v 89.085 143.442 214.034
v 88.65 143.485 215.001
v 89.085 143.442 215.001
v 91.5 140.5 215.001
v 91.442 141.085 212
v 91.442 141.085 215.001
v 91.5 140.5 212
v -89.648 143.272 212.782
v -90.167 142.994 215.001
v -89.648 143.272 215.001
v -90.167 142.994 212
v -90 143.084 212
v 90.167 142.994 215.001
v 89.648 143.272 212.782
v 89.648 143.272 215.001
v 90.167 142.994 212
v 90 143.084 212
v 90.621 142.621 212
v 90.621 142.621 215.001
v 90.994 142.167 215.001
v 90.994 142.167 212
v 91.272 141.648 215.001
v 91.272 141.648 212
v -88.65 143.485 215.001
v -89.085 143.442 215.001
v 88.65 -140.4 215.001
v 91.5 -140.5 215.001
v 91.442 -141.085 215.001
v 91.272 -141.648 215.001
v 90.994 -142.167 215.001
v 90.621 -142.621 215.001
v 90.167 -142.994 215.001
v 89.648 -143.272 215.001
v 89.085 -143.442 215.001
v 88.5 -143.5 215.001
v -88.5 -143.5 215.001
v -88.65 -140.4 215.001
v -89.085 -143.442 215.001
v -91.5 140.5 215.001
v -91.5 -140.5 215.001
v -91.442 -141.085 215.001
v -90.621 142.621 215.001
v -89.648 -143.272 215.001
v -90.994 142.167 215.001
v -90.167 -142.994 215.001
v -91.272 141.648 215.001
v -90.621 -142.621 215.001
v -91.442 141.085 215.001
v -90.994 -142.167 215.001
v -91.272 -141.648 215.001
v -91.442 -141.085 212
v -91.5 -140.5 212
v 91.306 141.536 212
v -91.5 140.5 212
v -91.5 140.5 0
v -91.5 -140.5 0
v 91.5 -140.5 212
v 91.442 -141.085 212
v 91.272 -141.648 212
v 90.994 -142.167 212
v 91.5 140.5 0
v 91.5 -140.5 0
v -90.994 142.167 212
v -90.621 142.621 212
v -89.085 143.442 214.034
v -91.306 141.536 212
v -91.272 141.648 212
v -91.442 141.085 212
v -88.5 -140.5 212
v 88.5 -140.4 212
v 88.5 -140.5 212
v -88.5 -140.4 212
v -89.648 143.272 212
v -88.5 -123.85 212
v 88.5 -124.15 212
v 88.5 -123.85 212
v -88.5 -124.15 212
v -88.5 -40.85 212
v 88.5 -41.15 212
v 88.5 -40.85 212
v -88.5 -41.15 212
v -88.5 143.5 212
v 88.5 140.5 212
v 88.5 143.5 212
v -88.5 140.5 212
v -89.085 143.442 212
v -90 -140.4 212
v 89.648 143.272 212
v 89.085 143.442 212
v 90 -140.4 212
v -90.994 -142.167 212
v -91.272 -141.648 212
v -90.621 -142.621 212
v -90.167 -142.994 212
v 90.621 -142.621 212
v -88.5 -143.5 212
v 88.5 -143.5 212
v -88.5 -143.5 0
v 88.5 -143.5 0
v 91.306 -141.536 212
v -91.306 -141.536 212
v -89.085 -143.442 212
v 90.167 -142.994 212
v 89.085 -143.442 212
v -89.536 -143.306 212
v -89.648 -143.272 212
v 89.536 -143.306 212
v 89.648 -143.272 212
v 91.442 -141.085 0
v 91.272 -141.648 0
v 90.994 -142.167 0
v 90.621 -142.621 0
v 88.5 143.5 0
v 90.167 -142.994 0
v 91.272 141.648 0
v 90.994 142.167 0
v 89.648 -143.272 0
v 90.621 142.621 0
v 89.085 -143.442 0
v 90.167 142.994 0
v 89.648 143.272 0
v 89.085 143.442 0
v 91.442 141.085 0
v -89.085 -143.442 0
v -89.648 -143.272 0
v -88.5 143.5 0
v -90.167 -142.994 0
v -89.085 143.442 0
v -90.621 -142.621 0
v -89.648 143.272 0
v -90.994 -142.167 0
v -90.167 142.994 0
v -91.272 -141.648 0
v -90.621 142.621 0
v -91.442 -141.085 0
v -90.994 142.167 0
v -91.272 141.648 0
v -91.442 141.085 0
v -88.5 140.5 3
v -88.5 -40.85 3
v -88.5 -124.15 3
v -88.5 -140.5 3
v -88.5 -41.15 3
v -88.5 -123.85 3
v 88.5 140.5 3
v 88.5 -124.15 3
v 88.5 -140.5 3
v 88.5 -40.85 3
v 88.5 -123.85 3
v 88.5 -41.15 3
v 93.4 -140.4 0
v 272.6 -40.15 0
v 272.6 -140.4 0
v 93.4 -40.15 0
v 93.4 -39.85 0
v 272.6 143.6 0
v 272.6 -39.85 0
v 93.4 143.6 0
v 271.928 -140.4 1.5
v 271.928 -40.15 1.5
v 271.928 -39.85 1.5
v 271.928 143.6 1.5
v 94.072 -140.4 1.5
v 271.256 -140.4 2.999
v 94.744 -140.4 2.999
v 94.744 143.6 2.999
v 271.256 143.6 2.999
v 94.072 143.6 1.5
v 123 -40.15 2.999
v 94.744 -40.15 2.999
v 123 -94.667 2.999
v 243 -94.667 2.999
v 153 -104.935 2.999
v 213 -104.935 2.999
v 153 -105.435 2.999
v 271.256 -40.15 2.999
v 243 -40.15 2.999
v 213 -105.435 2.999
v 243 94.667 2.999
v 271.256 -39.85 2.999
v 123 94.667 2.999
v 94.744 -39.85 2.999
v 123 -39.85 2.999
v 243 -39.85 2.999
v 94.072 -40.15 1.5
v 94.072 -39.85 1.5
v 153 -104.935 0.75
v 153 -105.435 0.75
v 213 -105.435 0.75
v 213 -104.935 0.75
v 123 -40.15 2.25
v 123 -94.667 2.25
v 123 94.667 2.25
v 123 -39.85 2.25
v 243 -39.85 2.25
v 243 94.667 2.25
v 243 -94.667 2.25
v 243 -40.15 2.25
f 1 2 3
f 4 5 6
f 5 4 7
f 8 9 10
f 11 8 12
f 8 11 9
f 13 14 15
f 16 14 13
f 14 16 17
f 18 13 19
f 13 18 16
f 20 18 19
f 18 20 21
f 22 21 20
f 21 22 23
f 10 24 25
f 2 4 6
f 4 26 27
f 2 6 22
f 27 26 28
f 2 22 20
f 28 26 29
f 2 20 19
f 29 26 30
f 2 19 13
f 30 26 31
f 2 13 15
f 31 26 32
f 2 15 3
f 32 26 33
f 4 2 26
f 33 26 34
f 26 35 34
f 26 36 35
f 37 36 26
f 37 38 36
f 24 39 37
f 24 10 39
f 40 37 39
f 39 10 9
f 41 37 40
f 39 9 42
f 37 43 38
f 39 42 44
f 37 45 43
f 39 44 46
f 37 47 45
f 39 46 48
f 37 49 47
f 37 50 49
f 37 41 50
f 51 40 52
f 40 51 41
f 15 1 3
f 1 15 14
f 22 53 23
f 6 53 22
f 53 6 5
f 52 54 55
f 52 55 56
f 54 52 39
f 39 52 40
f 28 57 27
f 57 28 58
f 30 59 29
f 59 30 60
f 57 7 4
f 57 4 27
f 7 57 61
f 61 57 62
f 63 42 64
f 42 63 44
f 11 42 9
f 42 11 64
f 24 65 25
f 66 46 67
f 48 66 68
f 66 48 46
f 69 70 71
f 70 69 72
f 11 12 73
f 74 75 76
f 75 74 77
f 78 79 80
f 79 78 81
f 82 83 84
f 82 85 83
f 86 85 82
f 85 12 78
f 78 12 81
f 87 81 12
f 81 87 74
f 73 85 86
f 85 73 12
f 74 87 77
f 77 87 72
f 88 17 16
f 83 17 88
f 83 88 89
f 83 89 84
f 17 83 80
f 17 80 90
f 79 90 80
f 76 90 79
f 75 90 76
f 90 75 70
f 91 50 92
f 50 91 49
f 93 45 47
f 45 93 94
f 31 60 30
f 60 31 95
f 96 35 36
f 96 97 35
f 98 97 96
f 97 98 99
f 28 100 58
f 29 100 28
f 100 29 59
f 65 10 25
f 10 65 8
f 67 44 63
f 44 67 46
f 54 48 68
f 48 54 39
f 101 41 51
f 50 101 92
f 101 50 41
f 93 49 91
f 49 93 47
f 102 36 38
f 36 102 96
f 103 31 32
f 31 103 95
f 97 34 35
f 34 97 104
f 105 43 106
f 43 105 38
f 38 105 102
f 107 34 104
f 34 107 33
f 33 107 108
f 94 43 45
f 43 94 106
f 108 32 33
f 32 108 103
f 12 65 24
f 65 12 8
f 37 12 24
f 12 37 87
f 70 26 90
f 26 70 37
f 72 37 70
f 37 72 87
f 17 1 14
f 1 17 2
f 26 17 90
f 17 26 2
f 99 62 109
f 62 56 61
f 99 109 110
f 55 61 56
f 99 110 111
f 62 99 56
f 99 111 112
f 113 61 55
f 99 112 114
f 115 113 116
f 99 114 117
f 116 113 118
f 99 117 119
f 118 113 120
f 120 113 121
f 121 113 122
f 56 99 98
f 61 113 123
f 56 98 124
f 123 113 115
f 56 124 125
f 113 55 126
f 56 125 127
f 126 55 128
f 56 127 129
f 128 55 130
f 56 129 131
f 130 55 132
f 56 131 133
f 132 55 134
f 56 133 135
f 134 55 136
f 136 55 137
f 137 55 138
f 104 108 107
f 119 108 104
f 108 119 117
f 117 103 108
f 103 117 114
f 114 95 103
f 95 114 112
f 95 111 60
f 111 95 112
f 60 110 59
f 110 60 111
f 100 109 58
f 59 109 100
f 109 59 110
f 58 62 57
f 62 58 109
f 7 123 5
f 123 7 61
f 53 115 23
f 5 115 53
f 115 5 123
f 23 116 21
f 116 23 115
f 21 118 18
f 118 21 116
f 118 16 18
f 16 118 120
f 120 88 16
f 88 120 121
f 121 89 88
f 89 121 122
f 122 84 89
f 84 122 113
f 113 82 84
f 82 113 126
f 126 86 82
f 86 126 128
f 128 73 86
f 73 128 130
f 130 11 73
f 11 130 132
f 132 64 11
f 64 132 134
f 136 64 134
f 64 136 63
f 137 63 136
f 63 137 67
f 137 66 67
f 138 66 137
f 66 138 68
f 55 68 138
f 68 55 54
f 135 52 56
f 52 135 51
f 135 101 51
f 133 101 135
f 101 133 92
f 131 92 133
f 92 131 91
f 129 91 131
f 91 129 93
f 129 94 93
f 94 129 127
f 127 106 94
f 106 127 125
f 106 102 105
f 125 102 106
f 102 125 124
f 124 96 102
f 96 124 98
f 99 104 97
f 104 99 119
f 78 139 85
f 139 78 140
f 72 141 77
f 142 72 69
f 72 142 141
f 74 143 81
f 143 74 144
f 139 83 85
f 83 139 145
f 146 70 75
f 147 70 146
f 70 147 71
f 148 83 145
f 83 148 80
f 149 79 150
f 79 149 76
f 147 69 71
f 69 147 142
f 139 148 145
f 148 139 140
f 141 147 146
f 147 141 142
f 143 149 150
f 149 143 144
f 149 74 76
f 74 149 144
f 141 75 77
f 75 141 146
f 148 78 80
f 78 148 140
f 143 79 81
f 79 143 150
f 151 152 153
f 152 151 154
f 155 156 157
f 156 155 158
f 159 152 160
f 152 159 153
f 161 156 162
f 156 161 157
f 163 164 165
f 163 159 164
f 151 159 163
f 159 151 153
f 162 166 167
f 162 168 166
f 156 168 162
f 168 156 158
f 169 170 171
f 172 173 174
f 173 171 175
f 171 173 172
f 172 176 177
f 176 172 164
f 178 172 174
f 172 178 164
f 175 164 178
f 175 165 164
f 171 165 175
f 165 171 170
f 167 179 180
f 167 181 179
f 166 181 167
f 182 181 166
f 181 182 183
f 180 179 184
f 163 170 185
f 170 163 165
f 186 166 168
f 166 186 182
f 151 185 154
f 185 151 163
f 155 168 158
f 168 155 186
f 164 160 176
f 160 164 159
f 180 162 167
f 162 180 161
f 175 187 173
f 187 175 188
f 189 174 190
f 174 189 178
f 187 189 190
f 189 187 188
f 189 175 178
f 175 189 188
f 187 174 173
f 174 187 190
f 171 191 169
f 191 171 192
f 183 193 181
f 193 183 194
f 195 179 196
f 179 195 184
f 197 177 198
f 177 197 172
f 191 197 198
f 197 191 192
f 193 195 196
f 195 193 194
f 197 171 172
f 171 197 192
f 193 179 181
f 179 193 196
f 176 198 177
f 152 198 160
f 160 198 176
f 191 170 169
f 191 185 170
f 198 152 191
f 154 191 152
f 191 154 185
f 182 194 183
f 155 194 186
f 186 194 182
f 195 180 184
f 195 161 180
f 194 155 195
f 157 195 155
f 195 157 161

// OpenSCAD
// Box builder with angled sliding lid.
// Has potential recess for label and fingernail grip to open.


// preview[view:north west, tilt:top diagonal]

// Width of Box
Box_x = 180;
// Length of Box
Box_y = 284;
// Height of Box
Box_z = 215; 
Wall_thickness = 3;  //[2:0.5:10]
Floor_thickness = 3;
Lid_thickness = 3;   //[2:0.5:10]
// Cut in half if the thing is too big for the printer
CutInHalfX = 0.3; // Input a value for the distance of the pieces cut on the X-Axis
CutInHalfY = 0; // Input a value for the distance of the pieces cut on the Y-Axis
// Add inset for a Label
Lid_inset = "yes"; // [yes,no]
// Fingernail recess to ease opening lid
Grip_recess = "yes"; // [yes,no]
// Add inset for a Label on extra box lid
E_Lid_inset = "yes"; // [yes,no]
// Fingernail recess to ease opening extra box lid
E_Grip_recess = "yes"; // [yes,no]

// Amount of play in the lid to fit well.
Looseness = 0.8;  //[0:0.1:1]
//
Show_assembled = "no"; // [yes,no]
// Number of internal dividers
X_Dividers = 0;
Even_X_Dividers = true; // [true,false] and don't use "" for true or false
X_Divider_Distances = [10,20,30]; // Set Values here if you set Even_X_Dividers to false. The amount of values needs to be at least the amount of X_Dividers for it to work properly.
// Number of internal dividers
Y_Dividers = 2;
Even_Y_Dividers = false; // [true,false], even only appear in primary box.
Y_Divider_Distances = [281-15, 281-(15+3+80)]; // Set Values here if you set Even_Y_Dividers to false. The amount of values needs to be at least the amount of Y_Dividers for it to work properly. If the value here is more than Box_x/2 it will apply the height of the E_box1.
// Extra Attached box1
E_box1 = false; // [true,false]
E_box1_Y = 100;
E_box1_Z = 120;

/* [Hidden] */
//Lid scale (effective overhang)
lid_scale = 0.985;
fingernail_width = 0.5;

Delta = 0.1;     // to get good overlaps for real objects
roundness = 32;  // for curve res.
epsilon = 0.001; // for minkowski lid height :(

	x = Box_x-Wall_thickness;
	y = Box_y-Wall_thickness;
    E_box1_Yoffset= -(y/2+E_box1_Y/2)-Wall_thickness;

// Lid
module lid(extra_x=Looseness, extra_z=Delta*2) {
	translate([0,Wall_thickness/2+Delta,-Lid_thickness/2-epsilon/2])
	linear_extrude(height=Lid_thickness+extra_z*2, scale=[lid_scale,1])
		square(size=[Box_x+extra_x,Box_y], center=true);
}

// undercut ridge on top of box to hold lid
module lid_ridge(x,y) {
	difference() {
		// the surround
		minkowski(){
			cube(size=[x,y,Lid_thickness], center=true);
			cylinder(h=epsilon, r=Wall_thickness, $fn=roundness); // increases lid height by 2*epsilon
		}
		// minus the lid
		lid(0, epsilon);
	}
}

// helper hole to open lid.
module fingernail_helper() {
	#cube(size=[Box_x/3, fingernail_width,Lid_thickness], center=true);
}

// Extra box lid
module E_box_lid(extra_x=Looseness, extra_z=Delta*2) {
    translate([0, Wall_thickness/2+Delta, -Lid_thickness/2-epsilon/2])
    linear_extrude(height=Lid_thickness+extra_z*2, scale=[lid_scale,1])
        square(size=[Box_x+extra_x, E_box1_Y+Wall_thickness], center=true);
}

// Extra box lid ridge
module E_box_lid_ridge(x, y) {
    difference() {
        minkowski() {
            cube(size=[x,y,Lid_thickness], center=true);
            cylinder(h=epsilon, r=Wall_thickness, $fn=roundness);
        }
        E_box_lid(0, epsilon);
    }
}

// box
module box() {

	linear_extrude(height=Box_z-Lid_thickness, convexity=4)
	difference() {
		offset(r=Wall_thickness, $fn=roundness) 
			square(size=[x, y], center=true);
		square(size=[x, y], center=true);
	}
    if (E_box1==true)
    {
        linear_extrude(height=E_box1_Z-Lid_thickness, convexity=4)
        difference() {
		offset(r=Wall_thickness, $fn=roundness) 
			translate ([0,E_box1_Yoffset,0]) square(size=[x, E_box1_Y], center=true);
		translate ([0,E_box1_Yoffset,0]) square(size=[x, E_box1_Y], center=true);
        }
    }
	// floor
    difference(){
	translate([0,0,Floor_thickness/2])
		cube(size=[x+Delta, y+Delta,Floor_thickness],center=true);
        cube([999, CutInHalfX,999]);
        }
    if (E_box1==true)
    {
        translate([0, E_box1_Yoffset,Floor_thickness/2])
        cube(size=[x+Delta, E_box1_Y+Delta*2, Floor_thickness], center=true);
    }
    
	// Top ridge of lid
	translate([0,0,Box_z-Lid_thickness/2])
		lid_ridge(x,y);
    if (E_box1==true)
    {
        translate([0, E_box1_Yoffset, E_box1_Z-Lid_thickness/2])
            E_box_lid_ridge(x, E_box1_Y);
    }
}


//-------------------
// Build the box
box();
if (X_Dividers > 0) {
	div_step = Box_x / (X_Dividers+1);
	for (i=[1:X_Dividers]) {
		translate([Box_x/2-(Even_X_Dividers ? div_step* i : X_Divider_Distances[i-1]), -Wall_thickness/4, Box_z/2-Lid_thickness/2])
			cube(size=[Floor_thickness, Box_y, Box_z-Lid_thickness], center=true);
	}
}
if (Y_Dividers > 0) {
	div_step = Box_y / (Y_Dividers+1);
	for (i=[1:Y_Dividers]) {
        is_extra = (Y_Divider_Distances[i-1] > Box_x/2 && E_box1 == true);
        z_height = is_extra ? E_box1_Z - Lid_thickness : Box_z - Lid_thickness;
        z_center = is_extra ? (E_box1_Z/2 - Lid_thickness/2) : Box_z/2 - Lid_thickness/2;
		#translate([-Wall_thickness/4, Box_y/2-(Even_Y_Dividers ? div_step*i :Y_Divider_Distances[i-1]), z_center])
			cube(size=[Box_x, 0.3, z_height], center=true);
	}
}
// Build the Lid
tz = (Show_assembled == "yes") ? Box_z-Lid_thickness/2 : Lid_thickness/2;
tx = (Show_assembled == "no") ? Box_x+Wall_thickness  : 0;
ty = (Show_assembled == "yes") ? Box_y/3  : 0;
lid_color = (Show_assembled == "yes") ? [0.7,0.7,0] : 0;
color(lid_color)
translate([tx,ty,tz])
	difference() {
		lid(-Looseness,0);
		// subtract fingernail recess
		if (Grip_recess=="yes") {
			translate([0,-Box_y/2.7,Lid_thickness/4])
				fingernail_helper();
		}
		// subtract inset
		if (Lid_inset=="yes") {
			translate([0,0,Lid_thickness/2])
				cube(size=[Box_x/1.5, Box_y/1.5,Lid_thickness/2], center=true);
		}
        translate([0,-40,0])cube([999, CutInHalfX, 999], center = true);
	}
// Build the Extra Box Lid (after main lid)
if (E_box1==true) {
    E_lid_tx = (Show_assembled == "no") ? Box_x + Wall_thickness : 0;
    E_lid_tz = (Show_assembled == "yes") ? E_box1_Z - Lid_thickness/2 : Lid_thickness/2;
    E_lid_ty = (Show_assembled == "yes") ? E_box1_Y/3 : -Wall_thickness;
    color(lid_color)
    translate([E_lid_tx, E_box1_Yoffset + E_lid_ty, E_lid_tz])
    difference() {
        E_box_lid(-Looseness, 0);
        // subtract fingernail recess
        if (E_Grip_recess=="yes") {
            translate([0,-E_box1_Y/2.7,Lid_thickness/4])
                fingernail_helper();
        }
        // subtract inset
        if (E_Lid_inset=="yes") {
            translate([0,0,Lid_thickness/2])
                cube(size=[Box_x/2, E_box1_Y/2,Lid_thickness/2], center=true);
        }
    }
}
